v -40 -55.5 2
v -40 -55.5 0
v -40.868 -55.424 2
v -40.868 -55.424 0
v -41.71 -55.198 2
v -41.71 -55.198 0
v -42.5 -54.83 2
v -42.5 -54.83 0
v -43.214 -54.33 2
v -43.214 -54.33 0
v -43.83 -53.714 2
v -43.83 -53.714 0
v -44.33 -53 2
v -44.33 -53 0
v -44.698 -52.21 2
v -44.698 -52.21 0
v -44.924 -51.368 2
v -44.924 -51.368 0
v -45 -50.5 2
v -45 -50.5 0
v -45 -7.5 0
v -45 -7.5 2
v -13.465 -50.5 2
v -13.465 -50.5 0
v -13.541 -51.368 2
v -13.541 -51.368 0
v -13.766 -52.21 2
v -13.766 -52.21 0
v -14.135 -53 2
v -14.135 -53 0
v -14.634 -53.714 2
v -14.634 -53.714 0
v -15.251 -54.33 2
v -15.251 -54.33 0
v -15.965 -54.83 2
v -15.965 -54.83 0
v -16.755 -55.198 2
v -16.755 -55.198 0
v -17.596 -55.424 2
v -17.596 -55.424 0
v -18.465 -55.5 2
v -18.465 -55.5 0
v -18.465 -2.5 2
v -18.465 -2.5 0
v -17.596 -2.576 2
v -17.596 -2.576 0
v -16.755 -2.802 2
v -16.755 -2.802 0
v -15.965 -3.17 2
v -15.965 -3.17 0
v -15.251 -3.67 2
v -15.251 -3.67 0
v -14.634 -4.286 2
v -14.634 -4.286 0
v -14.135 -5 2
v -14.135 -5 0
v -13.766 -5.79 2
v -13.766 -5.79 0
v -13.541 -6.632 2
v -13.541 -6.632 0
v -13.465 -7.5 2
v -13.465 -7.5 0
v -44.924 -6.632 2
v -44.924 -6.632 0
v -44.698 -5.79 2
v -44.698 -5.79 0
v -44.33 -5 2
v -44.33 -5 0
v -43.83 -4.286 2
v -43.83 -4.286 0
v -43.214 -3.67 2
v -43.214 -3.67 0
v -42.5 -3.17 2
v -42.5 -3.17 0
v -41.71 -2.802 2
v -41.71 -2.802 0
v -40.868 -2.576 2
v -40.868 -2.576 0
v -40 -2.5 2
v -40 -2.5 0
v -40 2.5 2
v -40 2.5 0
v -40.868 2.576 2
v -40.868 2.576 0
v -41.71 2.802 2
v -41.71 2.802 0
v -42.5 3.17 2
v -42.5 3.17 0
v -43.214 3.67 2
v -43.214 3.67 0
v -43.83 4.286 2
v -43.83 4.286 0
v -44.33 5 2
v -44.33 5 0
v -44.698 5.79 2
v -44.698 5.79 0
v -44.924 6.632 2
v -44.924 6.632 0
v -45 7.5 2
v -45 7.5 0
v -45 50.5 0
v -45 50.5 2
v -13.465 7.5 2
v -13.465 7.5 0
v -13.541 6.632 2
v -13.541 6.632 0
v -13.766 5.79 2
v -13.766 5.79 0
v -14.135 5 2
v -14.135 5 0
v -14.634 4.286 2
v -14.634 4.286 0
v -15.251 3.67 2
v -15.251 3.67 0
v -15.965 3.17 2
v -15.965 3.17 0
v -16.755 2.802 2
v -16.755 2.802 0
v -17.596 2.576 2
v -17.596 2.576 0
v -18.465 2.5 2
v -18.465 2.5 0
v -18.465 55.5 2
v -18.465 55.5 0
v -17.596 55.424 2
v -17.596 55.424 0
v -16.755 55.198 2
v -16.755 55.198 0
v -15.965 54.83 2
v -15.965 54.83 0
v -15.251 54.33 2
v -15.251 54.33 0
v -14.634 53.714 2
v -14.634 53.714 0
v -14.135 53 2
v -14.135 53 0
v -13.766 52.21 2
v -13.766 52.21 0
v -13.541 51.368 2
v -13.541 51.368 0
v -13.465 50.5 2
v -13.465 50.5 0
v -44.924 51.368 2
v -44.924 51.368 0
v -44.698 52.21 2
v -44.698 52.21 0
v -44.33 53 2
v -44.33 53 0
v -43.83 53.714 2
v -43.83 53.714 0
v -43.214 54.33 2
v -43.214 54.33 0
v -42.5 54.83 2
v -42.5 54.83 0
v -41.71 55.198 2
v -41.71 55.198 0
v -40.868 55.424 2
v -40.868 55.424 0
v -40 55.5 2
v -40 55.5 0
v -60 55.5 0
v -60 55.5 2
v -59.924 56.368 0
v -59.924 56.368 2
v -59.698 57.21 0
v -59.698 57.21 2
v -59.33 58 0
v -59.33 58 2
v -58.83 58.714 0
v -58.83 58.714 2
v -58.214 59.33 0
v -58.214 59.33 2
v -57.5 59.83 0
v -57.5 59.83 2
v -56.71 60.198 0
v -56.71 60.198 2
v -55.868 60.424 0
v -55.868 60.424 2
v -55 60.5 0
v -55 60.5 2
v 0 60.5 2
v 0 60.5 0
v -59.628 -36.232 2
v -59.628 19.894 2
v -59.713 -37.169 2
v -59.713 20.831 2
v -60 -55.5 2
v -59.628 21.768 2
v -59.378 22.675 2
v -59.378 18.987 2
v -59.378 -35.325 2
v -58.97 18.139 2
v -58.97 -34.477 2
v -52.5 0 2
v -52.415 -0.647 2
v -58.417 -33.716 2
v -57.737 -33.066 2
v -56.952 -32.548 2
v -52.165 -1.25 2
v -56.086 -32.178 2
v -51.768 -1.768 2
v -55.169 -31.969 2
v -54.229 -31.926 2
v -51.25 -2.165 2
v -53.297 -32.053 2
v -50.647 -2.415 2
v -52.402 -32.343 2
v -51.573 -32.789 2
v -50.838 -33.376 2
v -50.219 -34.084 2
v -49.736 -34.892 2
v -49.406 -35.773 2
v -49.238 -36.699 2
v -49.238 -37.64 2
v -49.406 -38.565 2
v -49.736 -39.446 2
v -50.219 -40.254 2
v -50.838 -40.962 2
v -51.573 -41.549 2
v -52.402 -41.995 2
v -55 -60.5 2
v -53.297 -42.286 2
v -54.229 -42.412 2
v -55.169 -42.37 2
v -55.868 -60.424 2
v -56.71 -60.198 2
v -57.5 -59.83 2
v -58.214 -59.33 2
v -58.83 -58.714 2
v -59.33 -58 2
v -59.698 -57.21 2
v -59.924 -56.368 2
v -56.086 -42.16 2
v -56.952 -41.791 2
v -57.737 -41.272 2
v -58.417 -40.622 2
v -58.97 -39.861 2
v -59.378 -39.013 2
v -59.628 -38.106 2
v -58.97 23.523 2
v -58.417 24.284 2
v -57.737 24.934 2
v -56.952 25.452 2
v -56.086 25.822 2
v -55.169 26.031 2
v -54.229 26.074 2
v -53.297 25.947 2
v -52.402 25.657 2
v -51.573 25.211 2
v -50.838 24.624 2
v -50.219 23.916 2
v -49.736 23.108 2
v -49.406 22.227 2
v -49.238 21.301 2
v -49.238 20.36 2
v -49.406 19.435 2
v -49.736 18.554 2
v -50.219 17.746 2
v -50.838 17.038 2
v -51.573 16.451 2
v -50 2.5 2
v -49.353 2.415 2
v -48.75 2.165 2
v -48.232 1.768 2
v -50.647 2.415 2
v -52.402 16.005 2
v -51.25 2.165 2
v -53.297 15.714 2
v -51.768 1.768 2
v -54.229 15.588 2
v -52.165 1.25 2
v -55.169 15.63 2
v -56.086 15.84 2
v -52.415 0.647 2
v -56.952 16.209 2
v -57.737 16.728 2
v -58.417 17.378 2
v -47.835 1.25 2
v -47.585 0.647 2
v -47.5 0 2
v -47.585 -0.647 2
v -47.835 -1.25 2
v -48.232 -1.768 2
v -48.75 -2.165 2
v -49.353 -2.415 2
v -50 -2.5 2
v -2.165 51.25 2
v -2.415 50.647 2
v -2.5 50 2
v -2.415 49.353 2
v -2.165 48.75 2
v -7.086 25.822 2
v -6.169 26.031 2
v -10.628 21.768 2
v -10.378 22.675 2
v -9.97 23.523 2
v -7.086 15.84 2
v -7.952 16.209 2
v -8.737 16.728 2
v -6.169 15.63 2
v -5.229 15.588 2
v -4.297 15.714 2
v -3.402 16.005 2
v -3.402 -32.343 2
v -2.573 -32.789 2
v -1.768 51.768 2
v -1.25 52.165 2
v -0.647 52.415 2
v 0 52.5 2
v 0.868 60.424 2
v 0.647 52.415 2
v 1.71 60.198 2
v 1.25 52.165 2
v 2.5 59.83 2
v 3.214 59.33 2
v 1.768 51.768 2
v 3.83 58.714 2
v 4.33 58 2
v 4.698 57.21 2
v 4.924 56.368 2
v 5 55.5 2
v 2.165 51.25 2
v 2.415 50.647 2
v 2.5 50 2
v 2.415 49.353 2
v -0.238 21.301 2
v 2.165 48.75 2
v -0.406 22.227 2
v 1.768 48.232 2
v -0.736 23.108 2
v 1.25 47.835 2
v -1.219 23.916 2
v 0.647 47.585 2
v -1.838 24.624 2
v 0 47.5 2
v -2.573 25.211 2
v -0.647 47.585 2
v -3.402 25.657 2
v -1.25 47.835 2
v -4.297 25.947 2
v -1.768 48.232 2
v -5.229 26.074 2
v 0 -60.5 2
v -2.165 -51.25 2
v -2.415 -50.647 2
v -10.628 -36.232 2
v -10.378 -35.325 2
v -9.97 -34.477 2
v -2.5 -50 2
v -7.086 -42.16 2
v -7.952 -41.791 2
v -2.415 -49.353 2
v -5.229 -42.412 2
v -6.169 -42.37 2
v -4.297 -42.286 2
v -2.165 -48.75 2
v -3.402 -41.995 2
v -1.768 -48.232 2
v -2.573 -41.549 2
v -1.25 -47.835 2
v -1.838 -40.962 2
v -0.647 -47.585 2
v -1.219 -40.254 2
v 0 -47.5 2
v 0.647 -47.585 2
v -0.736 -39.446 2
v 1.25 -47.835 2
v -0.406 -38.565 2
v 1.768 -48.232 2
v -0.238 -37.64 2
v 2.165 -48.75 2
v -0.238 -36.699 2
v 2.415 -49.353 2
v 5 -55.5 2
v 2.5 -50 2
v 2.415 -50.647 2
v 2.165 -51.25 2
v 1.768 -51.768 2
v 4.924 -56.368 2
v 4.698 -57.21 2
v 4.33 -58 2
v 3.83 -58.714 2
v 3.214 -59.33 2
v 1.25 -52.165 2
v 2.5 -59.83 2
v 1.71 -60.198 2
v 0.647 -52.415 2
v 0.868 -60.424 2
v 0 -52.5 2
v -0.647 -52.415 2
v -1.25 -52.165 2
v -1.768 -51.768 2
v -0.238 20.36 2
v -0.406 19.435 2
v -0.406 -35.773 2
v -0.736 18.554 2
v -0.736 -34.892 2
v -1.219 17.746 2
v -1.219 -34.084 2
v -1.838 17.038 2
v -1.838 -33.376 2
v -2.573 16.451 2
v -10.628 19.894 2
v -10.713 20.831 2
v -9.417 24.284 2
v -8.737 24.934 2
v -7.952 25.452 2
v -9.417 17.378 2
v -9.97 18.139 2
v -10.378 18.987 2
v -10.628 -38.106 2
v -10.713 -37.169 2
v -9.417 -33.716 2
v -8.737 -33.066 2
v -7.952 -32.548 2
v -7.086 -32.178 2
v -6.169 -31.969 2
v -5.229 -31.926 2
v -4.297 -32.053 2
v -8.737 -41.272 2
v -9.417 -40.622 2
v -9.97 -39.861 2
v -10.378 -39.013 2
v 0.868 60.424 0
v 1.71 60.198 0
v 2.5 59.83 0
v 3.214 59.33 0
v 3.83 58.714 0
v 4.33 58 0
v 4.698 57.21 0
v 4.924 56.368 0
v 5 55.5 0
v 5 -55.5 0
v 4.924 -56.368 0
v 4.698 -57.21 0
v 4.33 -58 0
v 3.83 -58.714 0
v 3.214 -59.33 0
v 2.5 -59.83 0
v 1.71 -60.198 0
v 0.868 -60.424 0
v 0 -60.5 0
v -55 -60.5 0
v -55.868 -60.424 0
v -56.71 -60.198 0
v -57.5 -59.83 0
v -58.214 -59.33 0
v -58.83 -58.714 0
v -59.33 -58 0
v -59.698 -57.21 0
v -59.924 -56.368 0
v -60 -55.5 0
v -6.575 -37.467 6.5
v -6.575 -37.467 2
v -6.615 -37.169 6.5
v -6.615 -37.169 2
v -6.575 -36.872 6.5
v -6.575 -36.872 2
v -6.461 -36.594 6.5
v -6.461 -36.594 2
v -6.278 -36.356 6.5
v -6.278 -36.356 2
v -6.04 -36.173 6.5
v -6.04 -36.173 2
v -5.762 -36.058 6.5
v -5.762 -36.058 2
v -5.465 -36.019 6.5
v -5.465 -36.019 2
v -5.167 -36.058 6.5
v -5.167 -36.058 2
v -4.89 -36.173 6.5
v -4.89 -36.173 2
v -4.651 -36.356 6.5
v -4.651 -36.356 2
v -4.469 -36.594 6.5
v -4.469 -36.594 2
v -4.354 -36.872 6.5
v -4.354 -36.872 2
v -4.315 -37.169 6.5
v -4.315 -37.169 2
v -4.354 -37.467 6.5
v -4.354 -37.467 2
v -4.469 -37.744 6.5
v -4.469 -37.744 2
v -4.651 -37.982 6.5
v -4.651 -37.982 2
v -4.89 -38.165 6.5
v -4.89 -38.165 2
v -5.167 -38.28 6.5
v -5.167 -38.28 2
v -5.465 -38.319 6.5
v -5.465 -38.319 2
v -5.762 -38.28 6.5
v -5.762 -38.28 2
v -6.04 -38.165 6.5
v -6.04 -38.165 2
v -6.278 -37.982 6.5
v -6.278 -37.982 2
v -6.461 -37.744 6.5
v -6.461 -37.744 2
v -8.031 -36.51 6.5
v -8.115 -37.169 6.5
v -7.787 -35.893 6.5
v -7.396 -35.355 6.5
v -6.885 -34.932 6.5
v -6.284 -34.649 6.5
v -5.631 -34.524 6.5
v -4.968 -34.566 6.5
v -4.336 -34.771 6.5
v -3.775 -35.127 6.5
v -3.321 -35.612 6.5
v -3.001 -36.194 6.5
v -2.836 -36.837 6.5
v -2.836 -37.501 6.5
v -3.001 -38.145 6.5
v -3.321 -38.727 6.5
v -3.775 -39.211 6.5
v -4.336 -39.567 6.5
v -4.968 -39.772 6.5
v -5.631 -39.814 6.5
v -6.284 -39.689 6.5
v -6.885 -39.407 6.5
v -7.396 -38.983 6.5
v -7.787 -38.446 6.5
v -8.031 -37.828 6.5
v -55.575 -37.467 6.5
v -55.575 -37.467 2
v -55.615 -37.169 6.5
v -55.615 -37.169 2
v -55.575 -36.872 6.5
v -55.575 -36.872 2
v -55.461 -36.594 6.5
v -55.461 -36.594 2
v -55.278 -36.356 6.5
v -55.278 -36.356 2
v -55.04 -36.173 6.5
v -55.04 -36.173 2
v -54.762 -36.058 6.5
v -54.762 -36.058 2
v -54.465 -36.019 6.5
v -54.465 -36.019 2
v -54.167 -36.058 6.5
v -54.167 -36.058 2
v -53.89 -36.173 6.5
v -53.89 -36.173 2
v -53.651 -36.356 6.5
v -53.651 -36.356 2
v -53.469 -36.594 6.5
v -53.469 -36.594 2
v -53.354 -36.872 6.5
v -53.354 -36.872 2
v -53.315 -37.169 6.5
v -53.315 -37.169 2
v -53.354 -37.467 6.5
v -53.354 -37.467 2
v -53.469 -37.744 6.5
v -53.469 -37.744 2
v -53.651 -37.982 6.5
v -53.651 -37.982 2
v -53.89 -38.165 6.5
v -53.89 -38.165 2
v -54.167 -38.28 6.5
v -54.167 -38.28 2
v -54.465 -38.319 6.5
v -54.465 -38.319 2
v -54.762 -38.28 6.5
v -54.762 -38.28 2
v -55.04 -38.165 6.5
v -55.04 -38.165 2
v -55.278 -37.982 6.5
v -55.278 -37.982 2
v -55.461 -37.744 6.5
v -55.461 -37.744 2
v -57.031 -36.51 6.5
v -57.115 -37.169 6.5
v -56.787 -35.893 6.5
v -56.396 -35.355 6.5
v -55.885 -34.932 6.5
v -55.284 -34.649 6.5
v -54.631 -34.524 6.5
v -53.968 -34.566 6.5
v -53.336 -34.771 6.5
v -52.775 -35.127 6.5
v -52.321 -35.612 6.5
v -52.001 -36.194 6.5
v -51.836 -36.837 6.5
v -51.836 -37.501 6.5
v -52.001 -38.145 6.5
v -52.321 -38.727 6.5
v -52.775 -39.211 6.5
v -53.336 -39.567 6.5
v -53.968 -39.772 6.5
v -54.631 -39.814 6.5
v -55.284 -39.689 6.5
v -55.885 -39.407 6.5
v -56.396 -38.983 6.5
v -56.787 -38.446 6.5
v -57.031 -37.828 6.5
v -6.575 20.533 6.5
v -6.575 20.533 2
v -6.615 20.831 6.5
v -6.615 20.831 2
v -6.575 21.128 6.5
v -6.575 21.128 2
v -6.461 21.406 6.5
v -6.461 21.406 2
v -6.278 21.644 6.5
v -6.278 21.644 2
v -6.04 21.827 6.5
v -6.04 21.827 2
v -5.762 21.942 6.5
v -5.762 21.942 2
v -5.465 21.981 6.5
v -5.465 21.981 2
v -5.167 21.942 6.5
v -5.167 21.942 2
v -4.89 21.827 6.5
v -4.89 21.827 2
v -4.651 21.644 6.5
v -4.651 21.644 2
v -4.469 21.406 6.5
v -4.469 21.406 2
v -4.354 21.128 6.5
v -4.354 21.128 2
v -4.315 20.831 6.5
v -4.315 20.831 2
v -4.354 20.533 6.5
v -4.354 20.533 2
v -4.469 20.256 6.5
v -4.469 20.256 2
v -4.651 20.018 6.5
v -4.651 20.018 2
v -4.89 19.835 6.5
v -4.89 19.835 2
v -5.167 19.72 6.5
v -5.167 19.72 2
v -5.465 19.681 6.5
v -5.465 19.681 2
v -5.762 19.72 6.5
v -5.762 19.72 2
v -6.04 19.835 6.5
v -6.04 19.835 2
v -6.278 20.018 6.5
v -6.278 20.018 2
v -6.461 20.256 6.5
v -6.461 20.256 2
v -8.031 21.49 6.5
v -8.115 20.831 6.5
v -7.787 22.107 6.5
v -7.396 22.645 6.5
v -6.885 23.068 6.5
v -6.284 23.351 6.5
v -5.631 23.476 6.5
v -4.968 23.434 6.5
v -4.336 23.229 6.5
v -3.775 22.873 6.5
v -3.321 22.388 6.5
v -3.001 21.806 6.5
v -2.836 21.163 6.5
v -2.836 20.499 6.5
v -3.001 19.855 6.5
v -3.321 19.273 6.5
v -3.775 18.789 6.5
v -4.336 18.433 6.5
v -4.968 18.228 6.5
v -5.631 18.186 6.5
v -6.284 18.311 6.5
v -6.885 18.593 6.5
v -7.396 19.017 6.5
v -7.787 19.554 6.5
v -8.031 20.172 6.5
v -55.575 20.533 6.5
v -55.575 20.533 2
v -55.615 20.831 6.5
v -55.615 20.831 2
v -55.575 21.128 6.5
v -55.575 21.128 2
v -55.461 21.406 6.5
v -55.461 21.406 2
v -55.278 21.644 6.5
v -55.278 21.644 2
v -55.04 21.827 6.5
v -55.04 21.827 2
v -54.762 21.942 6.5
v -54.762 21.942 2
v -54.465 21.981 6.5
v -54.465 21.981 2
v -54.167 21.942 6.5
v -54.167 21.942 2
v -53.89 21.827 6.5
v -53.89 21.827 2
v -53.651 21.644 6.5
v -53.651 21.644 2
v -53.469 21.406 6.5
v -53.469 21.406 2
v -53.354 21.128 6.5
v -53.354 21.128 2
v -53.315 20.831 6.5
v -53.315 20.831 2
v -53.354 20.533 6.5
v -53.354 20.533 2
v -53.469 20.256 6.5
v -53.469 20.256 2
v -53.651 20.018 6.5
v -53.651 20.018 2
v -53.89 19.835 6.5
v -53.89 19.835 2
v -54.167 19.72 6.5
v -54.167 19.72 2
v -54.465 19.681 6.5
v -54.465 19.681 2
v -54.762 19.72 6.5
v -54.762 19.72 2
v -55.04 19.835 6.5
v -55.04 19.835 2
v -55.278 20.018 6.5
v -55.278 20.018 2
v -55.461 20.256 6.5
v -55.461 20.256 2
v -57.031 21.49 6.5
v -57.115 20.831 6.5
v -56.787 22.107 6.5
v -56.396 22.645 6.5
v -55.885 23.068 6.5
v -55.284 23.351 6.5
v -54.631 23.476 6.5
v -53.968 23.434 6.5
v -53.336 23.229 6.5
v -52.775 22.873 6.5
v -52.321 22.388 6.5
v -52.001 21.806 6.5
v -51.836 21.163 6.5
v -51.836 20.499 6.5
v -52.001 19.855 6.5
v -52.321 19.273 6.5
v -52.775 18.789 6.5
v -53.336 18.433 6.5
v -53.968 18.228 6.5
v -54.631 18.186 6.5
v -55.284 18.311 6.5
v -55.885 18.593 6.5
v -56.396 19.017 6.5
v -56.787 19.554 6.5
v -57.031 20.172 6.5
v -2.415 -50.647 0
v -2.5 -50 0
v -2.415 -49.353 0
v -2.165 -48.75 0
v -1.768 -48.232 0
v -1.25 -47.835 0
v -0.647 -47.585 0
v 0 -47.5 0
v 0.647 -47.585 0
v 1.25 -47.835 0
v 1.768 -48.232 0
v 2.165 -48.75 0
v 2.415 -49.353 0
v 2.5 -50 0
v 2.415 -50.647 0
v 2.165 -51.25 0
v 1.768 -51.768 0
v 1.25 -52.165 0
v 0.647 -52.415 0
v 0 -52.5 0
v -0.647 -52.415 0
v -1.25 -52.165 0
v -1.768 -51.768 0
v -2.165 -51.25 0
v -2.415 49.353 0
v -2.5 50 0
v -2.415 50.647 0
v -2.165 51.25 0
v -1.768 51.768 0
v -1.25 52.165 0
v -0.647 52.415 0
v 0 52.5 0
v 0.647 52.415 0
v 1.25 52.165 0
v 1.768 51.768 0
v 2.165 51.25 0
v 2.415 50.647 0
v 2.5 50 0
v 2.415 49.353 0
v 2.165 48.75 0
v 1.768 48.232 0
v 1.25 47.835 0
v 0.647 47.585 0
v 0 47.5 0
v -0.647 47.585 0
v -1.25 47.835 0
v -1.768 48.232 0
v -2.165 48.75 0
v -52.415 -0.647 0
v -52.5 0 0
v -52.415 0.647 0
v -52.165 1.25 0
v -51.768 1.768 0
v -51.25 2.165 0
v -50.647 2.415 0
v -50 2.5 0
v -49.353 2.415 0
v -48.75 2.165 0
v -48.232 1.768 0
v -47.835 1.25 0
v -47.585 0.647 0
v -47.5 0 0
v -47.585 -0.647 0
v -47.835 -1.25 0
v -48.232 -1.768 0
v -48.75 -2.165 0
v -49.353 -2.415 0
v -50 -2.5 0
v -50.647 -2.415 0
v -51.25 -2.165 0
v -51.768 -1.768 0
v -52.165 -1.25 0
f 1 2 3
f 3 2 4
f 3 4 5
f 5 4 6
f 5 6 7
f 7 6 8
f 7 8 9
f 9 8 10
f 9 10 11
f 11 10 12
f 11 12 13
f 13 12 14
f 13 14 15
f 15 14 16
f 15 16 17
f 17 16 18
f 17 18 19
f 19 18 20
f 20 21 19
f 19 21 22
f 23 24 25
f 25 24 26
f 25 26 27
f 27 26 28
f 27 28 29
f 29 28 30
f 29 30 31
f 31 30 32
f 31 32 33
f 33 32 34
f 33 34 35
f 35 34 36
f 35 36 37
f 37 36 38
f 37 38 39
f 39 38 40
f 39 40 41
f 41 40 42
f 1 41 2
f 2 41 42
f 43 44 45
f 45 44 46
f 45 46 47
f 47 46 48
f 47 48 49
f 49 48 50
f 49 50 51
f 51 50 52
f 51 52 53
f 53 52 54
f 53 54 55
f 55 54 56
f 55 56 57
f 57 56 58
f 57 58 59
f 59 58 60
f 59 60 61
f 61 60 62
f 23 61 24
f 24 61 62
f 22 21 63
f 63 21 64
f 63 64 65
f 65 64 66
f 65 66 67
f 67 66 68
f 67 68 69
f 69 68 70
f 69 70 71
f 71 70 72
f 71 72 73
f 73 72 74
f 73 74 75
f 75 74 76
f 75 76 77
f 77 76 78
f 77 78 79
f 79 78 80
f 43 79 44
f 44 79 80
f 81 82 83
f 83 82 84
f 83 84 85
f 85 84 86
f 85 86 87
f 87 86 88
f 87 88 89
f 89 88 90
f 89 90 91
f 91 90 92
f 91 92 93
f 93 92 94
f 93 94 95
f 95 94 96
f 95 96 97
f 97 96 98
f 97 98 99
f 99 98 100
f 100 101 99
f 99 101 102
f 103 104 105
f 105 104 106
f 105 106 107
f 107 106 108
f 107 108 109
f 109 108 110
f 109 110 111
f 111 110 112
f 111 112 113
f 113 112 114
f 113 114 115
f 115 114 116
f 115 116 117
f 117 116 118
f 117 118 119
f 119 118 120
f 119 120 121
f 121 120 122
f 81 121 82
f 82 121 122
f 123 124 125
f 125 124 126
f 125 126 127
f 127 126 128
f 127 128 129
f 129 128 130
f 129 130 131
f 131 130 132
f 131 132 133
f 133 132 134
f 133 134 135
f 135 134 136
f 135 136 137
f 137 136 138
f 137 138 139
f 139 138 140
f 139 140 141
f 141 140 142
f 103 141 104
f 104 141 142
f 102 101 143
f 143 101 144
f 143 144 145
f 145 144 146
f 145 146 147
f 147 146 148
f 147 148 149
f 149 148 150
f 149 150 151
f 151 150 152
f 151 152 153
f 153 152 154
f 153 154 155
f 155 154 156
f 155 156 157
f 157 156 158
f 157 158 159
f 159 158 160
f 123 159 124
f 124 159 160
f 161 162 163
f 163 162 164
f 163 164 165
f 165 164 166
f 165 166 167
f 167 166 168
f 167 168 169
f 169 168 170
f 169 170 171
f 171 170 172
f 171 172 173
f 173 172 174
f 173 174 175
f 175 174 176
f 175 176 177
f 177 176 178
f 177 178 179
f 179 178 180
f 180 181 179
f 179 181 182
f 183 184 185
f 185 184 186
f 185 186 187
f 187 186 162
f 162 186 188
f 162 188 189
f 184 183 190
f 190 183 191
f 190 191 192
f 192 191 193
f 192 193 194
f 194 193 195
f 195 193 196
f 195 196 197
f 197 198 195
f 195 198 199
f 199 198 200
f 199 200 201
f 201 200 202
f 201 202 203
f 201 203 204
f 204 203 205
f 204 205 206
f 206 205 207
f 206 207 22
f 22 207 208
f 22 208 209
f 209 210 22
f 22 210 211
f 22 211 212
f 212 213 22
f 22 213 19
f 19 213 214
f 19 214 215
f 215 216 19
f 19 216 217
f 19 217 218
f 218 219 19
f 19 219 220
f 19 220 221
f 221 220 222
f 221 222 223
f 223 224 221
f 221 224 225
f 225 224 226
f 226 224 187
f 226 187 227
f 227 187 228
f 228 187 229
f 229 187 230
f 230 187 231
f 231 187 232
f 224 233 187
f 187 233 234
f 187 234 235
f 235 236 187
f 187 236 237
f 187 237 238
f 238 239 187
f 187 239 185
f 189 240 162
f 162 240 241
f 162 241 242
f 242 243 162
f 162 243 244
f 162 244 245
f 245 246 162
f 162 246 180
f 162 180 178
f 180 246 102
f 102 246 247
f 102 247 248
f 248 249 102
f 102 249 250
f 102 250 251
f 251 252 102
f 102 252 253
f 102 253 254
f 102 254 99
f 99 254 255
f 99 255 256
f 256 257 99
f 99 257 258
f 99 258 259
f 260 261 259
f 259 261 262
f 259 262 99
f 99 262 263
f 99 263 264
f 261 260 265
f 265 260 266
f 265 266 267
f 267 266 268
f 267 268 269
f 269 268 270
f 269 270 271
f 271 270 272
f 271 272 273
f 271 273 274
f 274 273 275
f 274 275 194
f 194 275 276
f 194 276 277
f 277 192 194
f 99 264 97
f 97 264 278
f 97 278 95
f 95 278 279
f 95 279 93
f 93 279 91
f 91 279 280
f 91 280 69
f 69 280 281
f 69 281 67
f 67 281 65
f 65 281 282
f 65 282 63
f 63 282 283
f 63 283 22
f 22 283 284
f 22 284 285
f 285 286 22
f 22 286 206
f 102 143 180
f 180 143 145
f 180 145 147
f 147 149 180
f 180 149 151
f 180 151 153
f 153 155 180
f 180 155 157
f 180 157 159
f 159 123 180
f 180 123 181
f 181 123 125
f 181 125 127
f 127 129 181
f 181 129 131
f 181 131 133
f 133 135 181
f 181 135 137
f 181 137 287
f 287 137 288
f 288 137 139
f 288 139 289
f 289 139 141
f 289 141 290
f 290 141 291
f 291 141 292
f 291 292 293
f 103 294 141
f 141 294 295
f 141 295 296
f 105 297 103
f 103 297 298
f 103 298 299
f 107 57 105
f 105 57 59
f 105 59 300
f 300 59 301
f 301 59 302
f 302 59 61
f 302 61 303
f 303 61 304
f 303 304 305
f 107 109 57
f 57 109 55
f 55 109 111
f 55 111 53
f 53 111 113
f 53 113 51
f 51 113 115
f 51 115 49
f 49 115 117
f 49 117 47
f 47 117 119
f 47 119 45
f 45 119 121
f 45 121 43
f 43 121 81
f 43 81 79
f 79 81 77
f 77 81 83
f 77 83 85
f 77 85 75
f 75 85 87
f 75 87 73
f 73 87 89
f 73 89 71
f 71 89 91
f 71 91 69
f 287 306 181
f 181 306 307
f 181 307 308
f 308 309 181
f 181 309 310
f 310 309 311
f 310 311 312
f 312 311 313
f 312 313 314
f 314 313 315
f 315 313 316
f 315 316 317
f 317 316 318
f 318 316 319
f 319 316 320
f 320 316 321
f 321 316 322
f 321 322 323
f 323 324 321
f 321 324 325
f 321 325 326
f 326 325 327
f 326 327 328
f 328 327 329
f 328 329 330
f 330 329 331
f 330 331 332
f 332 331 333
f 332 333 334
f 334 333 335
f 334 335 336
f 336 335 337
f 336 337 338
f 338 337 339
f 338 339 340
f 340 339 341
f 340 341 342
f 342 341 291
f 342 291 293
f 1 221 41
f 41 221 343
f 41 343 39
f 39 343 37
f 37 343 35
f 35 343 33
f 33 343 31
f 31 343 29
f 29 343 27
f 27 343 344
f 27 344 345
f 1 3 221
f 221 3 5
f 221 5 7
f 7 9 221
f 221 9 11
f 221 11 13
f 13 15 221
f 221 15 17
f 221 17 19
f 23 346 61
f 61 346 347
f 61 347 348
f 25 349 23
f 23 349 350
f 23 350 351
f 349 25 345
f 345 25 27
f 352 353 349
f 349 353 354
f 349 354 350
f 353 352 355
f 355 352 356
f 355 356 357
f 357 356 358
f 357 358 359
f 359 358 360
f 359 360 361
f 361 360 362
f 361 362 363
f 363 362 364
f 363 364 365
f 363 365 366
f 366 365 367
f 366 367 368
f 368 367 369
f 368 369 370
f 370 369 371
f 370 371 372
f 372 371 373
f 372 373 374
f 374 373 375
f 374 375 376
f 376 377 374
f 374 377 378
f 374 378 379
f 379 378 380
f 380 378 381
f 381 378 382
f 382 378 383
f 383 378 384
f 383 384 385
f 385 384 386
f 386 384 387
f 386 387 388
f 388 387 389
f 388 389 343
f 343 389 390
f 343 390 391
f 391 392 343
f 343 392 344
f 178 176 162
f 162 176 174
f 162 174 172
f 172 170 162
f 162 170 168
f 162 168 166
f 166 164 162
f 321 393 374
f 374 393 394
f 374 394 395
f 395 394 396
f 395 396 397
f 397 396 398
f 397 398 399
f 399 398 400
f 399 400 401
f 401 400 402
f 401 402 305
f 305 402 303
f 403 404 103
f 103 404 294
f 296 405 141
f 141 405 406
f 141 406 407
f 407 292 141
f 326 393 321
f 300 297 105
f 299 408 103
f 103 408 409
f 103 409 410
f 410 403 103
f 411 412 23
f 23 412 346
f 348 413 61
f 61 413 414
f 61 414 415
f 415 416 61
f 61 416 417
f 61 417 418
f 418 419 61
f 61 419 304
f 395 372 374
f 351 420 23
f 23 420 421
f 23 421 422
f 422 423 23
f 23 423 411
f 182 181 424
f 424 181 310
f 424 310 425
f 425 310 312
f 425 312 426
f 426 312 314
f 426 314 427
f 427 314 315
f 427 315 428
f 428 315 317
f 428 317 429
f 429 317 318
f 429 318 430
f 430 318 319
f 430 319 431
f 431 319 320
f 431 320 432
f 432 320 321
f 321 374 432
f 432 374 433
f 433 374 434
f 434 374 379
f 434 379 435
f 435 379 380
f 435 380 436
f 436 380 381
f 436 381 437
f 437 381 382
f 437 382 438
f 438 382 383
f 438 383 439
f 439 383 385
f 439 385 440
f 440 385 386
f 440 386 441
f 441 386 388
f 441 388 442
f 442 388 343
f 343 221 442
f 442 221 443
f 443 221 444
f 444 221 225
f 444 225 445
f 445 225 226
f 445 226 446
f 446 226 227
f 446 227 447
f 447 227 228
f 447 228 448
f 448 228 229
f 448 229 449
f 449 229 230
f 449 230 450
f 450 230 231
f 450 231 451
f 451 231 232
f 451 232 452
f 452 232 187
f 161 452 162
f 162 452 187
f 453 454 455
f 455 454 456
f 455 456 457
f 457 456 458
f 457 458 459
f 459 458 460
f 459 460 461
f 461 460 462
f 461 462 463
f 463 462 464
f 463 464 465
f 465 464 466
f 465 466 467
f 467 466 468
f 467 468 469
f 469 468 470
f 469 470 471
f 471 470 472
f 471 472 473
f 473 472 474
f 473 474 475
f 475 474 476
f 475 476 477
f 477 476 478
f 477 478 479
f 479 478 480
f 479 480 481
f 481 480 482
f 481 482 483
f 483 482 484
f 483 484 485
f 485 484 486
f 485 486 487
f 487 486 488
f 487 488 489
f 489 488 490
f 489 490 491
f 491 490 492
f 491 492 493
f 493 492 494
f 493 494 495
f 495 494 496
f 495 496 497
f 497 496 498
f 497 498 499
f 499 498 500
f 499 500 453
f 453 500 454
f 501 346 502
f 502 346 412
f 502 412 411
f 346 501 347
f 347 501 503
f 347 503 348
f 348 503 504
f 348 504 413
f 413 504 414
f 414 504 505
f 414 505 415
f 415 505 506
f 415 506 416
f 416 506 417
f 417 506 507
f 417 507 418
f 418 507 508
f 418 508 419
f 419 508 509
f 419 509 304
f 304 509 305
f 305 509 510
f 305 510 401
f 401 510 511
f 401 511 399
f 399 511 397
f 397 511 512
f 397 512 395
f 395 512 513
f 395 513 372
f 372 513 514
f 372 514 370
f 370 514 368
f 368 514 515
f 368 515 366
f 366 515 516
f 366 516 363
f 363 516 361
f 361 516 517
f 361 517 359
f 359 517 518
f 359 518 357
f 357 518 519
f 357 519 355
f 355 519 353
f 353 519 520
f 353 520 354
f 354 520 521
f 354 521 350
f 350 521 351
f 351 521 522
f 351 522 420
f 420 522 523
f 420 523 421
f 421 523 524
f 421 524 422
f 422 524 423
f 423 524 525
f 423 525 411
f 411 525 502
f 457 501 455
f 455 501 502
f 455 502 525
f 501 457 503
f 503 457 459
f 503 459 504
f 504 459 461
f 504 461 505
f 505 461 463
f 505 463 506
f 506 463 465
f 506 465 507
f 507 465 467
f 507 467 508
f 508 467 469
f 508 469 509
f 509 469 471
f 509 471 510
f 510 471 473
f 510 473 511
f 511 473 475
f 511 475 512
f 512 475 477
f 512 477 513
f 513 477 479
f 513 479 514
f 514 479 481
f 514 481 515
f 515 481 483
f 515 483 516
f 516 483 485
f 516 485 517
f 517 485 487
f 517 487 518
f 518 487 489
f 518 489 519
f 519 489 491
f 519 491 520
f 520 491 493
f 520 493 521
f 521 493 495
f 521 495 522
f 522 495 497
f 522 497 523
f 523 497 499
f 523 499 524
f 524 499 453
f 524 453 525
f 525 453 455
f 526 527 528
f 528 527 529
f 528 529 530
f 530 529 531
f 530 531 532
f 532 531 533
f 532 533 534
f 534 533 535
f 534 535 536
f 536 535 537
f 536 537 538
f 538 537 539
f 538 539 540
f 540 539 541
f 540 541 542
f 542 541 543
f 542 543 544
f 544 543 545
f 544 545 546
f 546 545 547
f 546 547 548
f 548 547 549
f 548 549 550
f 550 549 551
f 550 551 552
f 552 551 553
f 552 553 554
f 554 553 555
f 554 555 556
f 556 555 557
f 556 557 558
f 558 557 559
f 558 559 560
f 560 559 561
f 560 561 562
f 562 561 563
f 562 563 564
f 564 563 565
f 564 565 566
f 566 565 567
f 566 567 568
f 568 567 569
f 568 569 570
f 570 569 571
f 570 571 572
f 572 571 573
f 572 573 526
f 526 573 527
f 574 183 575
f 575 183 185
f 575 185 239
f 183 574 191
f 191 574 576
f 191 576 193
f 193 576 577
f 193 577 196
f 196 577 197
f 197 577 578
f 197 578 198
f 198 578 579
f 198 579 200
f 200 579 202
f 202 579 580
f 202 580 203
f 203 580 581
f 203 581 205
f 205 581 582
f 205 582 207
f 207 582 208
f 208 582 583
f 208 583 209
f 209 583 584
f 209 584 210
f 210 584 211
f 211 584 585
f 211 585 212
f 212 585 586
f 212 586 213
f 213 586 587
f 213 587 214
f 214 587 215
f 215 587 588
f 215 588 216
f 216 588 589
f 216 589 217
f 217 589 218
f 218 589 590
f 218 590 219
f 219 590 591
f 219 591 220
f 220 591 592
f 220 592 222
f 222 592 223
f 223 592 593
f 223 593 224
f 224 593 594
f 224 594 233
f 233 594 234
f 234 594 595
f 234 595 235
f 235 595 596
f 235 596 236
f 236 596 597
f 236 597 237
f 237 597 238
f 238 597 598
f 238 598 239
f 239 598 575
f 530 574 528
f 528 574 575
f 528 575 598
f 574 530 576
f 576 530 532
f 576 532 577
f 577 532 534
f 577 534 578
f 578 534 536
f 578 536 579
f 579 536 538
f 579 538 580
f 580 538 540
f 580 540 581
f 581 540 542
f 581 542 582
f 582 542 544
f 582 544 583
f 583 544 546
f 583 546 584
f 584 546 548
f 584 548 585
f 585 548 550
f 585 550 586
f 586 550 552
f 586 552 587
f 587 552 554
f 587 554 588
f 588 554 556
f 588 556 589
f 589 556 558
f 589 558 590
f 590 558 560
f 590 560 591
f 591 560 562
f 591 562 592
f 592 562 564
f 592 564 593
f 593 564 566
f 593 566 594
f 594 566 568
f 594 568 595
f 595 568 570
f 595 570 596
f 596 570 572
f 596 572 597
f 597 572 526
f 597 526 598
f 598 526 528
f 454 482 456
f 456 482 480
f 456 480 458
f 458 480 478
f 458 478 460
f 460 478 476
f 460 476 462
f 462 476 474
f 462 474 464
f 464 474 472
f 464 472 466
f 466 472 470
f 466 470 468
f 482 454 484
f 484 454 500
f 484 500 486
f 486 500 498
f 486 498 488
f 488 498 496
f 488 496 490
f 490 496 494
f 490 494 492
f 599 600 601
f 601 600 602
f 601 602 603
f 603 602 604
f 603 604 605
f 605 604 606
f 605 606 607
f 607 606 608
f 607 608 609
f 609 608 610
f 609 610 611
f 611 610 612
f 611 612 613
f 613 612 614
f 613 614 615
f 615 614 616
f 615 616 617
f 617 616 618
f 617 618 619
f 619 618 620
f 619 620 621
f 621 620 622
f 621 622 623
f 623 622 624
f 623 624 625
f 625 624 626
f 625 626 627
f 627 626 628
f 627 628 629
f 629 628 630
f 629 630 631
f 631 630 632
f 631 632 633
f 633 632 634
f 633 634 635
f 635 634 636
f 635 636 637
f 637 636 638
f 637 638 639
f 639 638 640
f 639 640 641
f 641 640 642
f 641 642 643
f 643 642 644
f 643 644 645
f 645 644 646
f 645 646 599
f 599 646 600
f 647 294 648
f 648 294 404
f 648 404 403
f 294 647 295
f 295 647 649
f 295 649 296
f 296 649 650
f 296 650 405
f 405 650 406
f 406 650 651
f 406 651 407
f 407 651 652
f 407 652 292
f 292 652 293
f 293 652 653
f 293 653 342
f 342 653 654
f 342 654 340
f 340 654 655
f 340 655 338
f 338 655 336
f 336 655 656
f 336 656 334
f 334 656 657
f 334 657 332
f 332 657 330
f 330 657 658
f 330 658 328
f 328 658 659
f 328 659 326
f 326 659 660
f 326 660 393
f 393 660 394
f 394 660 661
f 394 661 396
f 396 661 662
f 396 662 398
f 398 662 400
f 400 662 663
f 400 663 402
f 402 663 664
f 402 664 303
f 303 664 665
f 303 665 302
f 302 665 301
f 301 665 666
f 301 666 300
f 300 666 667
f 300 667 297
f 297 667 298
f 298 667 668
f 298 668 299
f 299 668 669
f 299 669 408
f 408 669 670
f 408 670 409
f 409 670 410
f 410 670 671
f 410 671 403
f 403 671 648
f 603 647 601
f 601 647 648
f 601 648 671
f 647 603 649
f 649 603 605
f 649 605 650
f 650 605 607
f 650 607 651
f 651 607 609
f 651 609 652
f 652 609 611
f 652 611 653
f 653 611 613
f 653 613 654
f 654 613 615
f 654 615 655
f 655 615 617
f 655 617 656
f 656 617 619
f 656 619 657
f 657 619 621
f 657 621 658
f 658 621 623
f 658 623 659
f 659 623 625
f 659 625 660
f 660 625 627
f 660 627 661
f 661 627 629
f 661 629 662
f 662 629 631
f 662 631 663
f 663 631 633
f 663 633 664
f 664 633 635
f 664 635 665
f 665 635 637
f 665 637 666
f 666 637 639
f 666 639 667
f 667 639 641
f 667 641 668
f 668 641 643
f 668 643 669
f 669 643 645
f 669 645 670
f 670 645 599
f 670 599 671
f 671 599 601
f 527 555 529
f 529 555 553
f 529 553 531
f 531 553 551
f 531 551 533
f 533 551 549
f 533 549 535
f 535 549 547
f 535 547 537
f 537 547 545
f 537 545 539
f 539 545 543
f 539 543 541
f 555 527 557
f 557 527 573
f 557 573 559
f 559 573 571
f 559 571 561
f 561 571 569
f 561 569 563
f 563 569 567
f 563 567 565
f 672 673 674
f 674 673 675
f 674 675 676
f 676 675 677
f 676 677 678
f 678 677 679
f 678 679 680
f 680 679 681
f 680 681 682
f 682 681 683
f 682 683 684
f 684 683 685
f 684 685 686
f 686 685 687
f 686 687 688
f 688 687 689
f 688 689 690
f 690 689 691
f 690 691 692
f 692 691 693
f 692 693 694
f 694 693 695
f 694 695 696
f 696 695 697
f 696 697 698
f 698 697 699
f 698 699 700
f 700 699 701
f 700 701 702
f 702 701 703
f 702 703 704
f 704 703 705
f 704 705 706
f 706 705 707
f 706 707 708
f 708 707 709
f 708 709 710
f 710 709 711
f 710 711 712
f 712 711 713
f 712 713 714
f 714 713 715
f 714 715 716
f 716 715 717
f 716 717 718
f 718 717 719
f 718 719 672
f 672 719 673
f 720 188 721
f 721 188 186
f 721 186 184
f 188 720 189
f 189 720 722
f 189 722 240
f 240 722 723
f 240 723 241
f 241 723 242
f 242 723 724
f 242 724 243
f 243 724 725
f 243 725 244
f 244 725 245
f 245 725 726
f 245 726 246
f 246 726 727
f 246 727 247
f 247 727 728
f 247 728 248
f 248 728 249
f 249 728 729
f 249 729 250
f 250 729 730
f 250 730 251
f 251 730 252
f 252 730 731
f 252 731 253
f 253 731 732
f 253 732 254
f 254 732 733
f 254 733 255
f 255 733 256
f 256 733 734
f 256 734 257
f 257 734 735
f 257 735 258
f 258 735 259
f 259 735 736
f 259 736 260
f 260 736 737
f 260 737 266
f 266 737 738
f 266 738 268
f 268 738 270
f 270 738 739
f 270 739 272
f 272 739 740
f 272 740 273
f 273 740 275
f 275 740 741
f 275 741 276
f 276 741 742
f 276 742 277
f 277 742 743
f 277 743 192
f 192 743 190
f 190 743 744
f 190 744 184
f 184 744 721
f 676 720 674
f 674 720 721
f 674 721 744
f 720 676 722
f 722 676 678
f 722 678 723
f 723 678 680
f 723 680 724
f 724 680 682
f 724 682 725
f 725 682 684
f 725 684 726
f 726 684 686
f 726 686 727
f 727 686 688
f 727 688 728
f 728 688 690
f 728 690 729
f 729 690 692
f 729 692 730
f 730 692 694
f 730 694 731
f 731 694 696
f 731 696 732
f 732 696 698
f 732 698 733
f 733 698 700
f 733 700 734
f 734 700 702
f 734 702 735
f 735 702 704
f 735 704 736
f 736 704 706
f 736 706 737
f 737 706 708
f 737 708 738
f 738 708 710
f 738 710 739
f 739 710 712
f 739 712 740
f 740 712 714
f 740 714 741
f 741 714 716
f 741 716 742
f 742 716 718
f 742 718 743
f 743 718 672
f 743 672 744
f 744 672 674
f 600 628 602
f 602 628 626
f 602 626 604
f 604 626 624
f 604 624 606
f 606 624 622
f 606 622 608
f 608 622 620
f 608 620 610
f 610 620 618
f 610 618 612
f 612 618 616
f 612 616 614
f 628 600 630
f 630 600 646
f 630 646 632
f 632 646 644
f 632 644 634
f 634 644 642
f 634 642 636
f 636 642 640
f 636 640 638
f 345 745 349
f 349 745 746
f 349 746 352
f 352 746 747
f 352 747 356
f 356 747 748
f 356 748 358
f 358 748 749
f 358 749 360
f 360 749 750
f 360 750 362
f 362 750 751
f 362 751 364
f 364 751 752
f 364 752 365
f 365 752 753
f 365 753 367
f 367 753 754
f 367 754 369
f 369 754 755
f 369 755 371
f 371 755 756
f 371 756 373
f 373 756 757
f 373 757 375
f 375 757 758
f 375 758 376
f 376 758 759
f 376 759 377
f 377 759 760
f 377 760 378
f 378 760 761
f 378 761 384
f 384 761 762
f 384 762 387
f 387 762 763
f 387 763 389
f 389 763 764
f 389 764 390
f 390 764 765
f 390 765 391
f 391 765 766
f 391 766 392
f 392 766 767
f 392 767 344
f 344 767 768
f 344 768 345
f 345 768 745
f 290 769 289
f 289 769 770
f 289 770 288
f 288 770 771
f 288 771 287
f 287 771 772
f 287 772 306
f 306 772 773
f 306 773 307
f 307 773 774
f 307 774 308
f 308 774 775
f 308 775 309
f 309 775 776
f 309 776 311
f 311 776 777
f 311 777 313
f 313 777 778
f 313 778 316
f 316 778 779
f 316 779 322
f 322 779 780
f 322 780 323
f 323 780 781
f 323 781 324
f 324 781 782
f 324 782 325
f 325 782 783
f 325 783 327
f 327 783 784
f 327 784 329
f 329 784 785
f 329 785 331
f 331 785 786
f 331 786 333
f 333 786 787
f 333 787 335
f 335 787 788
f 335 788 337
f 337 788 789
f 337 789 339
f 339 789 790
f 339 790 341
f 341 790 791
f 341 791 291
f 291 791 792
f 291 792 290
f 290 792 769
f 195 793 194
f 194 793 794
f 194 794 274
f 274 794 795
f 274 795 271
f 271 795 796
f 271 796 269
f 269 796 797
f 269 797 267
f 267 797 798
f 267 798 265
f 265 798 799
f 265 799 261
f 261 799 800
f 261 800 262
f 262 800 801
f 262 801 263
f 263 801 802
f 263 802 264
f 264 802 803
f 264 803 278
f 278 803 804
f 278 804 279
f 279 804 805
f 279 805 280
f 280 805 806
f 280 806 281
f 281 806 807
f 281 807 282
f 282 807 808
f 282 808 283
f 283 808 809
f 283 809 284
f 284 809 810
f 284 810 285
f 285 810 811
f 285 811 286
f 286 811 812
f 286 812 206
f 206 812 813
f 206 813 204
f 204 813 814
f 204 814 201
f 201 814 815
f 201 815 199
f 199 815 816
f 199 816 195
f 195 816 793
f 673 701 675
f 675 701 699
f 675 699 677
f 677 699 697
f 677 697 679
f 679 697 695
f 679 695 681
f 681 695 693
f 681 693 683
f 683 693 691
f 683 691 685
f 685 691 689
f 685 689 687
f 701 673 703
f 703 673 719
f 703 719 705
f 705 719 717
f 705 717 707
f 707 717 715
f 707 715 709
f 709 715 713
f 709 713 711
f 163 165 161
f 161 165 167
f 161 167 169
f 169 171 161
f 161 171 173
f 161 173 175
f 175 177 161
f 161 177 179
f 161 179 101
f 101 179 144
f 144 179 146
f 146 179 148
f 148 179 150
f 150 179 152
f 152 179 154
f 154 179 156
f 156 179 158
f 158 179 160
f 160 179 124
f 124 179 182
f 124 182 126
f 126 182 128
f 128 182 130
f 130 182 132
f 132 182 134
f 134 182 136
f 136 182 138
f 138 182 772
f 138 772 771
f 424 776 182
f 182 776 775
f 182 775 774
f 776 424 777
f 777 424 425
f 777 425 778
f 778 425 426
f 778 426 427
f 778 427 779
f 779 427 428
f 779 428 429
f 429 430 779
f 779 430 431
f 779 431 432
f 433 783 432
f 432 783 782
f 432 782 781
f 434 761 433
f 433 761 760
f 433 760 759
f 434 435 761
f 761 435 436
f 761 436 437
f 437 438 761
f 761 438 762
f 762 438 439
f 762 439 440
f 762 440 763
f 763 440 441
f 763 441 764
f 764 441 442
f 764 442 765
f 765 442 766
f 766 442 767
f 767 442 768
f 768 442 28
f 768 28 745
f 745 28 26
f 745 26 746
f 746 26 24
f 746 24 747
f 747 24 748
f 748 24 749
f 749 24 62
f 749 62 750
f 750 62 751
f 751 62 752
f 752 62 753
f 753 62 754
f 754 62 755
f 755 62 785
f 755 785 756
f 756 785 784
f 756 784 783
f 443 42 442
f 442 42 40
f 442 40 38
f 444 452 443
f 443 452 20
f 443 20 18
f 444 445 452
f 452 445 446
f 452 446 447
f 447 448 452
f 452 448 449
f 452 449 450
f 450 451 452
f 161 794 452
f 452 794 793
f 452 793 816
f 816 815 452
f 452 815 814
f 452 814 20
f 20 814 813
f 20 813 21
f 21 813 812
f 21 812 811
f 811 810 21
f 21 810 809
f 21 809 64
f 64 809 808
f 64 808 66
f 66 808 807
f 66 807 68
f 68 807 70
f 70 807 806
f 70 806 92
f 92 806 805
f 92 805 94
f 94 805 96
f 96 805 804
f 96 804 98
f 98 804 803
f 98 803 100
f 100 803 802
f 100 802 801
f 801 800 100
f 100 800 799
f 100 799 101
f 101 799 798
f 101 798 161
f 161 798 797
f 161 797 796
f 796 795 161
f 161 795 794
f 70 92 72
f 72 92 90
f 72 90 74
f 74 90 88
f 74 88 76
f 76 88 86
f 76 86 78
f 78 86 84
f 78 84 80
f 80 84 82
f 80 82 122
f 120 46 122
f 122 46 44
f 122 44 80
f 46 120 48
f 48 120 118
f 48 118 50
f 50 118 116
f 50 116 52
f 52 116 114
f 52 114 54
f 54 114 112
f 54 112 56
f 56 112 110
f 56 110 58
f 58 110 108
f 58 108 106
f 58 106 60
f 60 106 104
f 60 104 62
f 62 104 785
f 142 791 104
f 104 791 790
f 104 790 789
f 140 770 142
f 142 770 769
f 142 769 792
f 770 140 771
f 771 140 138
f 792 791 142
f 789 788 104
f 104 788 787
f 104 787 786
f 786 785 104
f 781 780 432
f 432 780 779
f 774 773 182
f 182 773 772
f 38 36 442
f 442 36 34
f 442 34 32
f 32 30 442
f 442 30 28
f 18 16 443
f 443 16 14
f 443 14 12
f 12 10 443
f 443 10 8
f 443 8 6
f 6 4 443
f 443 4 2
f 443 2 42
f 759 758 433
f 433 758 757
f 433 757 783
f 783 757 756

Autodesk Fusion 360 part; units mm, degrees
sketch "Sketch1" plane through (0, 0, 0) normal (0, 0, 1) x (1, 0, 0)
  line L0 (65.5, -65.5) -> (-65.5, -65.5) construction
  line L1 (-65.5, -65.5) -> (-65.5, 65.5) construction
  line L2 (-65.5, 65.5) -> (65.5, 65.5) construction
  line L3 (65.5, 65.5) -> (65.5, -65.5) construction
  line L4 (65.5, -65.5) -> (-65.5, 65.5) construction
  line L5 (-65.5, -65.5) -> (65.5, 65.5) construction
  line L6 (0, 50) -> (0, -50) construction
  line L7 (-50, 0) -> (50, 0) construction
  line L8 (-60, 60.5) -> (5, 60.5)
  line L9 (5, 60.5) -> (5, -60.5)
  line L10 (5, -60.5) -> (-60, -60.5)
  line L11 (-60, -60.5) -> (-60, 60.5)
  circle A0 centre (-50, 0) radius 2.5
  circle A1 centre (0, 50) radius 2.5
  circle A2 centre (0, -50) radius 2.5
  line L12 (-54.4646, 20.8308) -> (-5.4646, 20.8308) construction
  line L13 (-5.4646, 20.8308) -> (-5.4646, -37.1692) construction
  line L14 (-5.4646, -37.1692) -> (-54.4646, -37.1692) construction
  line L15 (-54.4646, -37.1692) -> (-54.4646, 20.8308) construction
  circle A3 centre (-54.4646, 20.8308) radius 1.15
  circle A4 centre (-54.4646, 20.8308) radius 2.65
  circle A5 centre (-5.4646, 20.8308) radius 1.15
  circle A6 centre (-5.4646, 20.8308) radius 2.65
  circle A7 centre (-54.4646, -37.1692) radius 1.15
  circle A8 centre (-54.4646, -37.1692) radius 2.65
  circle A9 centre (-5.4646, -37.1692) radius 1.15
  circle A10 centre (-5.4646, -37.1692) radius 2.65
  line L16 (-45, 2.5) -> (-13.4646, 2.5)
  line L17 (-13.4646, 2.5) -> (-13.4646, 55.5)
  line L18 (-13.4646, 55.5) -> (-45, 55.5)
  line L19 (-45, 55.5) -> (-45, 2.5)
  line L20 (-45, -2.5) -> (-13.4646, -2.5)
  line L21 (-13.4646, -2.5) -> (-13.4646, -55.5)
  line L22 (-13.4646, -55.5) -> (-45, -55.5)
  line L23 (-45, -55.5) -> (-45, -2.5)
  point P0 (5, 0)
  dimension "d4" = 131
  dimension "d5" = 131
  dimension "d6" = 100
  dimension "d7" = 100
  dimension "d8" = 5
  dimension "d9" = 5
  dimension "d10" = 5
  dimension "d14" = 5
  dimension "d15" = 10
  dimension "d16" = 49
  dimension "d17" = 58
  dimension "d18" = 2.3
  dimension "d19" = 1.5
  dimension "d22" = 49
  dimension "d23" = -58
  dimension "d32" = 5
  dimension "d33" = 5
  dimension "d35" = 8
  dimension "d36" = 2.5
  dimension "d37" = 2.5
  dimension "d38" = 5
  dimension "d39" = 5
  dimension "d40" = 8
  dimension "d41" = 5
  dimension "d42" = 5
extrude "Extrude1" add sketch "Sketch1" along normal blind 2 contours L8 L9 L10 L11 | A3 | A4 | A5 | A6 | A7 | A8 | A9 | A10
extrude "Extrude2" add sketch "Sketch1" along normal blind 6.5 contours A4 | A6 | A8 | A10
draft "Draft1" angle 30 neutral plane through (0, 0, 6.5) pull (0, 0, 1) 4 faces at (-51.8278, -36.9053, 3.5) (-51.8278, 21.0947, 3.5) (-2.8278, 21.0947, 3.5) (-2.8278, -36.9053, 3.5)
fillet "Fillet1" radius 5 12 edges at (-60, -60.5, 1) (5, -60.5, 1) (5, 60.5, 1) (-60, 60.5, 1) (-45, 55.5, 1) (-13.4646, 55.5, 1) (-13.4646, 2.5, 1) (-45, 2.5, 1) (-45, -2.5, 1) (-13.4646, -2.5, 1) (-13.4646, -55.5, 1) (-45, -55.5, 1)
